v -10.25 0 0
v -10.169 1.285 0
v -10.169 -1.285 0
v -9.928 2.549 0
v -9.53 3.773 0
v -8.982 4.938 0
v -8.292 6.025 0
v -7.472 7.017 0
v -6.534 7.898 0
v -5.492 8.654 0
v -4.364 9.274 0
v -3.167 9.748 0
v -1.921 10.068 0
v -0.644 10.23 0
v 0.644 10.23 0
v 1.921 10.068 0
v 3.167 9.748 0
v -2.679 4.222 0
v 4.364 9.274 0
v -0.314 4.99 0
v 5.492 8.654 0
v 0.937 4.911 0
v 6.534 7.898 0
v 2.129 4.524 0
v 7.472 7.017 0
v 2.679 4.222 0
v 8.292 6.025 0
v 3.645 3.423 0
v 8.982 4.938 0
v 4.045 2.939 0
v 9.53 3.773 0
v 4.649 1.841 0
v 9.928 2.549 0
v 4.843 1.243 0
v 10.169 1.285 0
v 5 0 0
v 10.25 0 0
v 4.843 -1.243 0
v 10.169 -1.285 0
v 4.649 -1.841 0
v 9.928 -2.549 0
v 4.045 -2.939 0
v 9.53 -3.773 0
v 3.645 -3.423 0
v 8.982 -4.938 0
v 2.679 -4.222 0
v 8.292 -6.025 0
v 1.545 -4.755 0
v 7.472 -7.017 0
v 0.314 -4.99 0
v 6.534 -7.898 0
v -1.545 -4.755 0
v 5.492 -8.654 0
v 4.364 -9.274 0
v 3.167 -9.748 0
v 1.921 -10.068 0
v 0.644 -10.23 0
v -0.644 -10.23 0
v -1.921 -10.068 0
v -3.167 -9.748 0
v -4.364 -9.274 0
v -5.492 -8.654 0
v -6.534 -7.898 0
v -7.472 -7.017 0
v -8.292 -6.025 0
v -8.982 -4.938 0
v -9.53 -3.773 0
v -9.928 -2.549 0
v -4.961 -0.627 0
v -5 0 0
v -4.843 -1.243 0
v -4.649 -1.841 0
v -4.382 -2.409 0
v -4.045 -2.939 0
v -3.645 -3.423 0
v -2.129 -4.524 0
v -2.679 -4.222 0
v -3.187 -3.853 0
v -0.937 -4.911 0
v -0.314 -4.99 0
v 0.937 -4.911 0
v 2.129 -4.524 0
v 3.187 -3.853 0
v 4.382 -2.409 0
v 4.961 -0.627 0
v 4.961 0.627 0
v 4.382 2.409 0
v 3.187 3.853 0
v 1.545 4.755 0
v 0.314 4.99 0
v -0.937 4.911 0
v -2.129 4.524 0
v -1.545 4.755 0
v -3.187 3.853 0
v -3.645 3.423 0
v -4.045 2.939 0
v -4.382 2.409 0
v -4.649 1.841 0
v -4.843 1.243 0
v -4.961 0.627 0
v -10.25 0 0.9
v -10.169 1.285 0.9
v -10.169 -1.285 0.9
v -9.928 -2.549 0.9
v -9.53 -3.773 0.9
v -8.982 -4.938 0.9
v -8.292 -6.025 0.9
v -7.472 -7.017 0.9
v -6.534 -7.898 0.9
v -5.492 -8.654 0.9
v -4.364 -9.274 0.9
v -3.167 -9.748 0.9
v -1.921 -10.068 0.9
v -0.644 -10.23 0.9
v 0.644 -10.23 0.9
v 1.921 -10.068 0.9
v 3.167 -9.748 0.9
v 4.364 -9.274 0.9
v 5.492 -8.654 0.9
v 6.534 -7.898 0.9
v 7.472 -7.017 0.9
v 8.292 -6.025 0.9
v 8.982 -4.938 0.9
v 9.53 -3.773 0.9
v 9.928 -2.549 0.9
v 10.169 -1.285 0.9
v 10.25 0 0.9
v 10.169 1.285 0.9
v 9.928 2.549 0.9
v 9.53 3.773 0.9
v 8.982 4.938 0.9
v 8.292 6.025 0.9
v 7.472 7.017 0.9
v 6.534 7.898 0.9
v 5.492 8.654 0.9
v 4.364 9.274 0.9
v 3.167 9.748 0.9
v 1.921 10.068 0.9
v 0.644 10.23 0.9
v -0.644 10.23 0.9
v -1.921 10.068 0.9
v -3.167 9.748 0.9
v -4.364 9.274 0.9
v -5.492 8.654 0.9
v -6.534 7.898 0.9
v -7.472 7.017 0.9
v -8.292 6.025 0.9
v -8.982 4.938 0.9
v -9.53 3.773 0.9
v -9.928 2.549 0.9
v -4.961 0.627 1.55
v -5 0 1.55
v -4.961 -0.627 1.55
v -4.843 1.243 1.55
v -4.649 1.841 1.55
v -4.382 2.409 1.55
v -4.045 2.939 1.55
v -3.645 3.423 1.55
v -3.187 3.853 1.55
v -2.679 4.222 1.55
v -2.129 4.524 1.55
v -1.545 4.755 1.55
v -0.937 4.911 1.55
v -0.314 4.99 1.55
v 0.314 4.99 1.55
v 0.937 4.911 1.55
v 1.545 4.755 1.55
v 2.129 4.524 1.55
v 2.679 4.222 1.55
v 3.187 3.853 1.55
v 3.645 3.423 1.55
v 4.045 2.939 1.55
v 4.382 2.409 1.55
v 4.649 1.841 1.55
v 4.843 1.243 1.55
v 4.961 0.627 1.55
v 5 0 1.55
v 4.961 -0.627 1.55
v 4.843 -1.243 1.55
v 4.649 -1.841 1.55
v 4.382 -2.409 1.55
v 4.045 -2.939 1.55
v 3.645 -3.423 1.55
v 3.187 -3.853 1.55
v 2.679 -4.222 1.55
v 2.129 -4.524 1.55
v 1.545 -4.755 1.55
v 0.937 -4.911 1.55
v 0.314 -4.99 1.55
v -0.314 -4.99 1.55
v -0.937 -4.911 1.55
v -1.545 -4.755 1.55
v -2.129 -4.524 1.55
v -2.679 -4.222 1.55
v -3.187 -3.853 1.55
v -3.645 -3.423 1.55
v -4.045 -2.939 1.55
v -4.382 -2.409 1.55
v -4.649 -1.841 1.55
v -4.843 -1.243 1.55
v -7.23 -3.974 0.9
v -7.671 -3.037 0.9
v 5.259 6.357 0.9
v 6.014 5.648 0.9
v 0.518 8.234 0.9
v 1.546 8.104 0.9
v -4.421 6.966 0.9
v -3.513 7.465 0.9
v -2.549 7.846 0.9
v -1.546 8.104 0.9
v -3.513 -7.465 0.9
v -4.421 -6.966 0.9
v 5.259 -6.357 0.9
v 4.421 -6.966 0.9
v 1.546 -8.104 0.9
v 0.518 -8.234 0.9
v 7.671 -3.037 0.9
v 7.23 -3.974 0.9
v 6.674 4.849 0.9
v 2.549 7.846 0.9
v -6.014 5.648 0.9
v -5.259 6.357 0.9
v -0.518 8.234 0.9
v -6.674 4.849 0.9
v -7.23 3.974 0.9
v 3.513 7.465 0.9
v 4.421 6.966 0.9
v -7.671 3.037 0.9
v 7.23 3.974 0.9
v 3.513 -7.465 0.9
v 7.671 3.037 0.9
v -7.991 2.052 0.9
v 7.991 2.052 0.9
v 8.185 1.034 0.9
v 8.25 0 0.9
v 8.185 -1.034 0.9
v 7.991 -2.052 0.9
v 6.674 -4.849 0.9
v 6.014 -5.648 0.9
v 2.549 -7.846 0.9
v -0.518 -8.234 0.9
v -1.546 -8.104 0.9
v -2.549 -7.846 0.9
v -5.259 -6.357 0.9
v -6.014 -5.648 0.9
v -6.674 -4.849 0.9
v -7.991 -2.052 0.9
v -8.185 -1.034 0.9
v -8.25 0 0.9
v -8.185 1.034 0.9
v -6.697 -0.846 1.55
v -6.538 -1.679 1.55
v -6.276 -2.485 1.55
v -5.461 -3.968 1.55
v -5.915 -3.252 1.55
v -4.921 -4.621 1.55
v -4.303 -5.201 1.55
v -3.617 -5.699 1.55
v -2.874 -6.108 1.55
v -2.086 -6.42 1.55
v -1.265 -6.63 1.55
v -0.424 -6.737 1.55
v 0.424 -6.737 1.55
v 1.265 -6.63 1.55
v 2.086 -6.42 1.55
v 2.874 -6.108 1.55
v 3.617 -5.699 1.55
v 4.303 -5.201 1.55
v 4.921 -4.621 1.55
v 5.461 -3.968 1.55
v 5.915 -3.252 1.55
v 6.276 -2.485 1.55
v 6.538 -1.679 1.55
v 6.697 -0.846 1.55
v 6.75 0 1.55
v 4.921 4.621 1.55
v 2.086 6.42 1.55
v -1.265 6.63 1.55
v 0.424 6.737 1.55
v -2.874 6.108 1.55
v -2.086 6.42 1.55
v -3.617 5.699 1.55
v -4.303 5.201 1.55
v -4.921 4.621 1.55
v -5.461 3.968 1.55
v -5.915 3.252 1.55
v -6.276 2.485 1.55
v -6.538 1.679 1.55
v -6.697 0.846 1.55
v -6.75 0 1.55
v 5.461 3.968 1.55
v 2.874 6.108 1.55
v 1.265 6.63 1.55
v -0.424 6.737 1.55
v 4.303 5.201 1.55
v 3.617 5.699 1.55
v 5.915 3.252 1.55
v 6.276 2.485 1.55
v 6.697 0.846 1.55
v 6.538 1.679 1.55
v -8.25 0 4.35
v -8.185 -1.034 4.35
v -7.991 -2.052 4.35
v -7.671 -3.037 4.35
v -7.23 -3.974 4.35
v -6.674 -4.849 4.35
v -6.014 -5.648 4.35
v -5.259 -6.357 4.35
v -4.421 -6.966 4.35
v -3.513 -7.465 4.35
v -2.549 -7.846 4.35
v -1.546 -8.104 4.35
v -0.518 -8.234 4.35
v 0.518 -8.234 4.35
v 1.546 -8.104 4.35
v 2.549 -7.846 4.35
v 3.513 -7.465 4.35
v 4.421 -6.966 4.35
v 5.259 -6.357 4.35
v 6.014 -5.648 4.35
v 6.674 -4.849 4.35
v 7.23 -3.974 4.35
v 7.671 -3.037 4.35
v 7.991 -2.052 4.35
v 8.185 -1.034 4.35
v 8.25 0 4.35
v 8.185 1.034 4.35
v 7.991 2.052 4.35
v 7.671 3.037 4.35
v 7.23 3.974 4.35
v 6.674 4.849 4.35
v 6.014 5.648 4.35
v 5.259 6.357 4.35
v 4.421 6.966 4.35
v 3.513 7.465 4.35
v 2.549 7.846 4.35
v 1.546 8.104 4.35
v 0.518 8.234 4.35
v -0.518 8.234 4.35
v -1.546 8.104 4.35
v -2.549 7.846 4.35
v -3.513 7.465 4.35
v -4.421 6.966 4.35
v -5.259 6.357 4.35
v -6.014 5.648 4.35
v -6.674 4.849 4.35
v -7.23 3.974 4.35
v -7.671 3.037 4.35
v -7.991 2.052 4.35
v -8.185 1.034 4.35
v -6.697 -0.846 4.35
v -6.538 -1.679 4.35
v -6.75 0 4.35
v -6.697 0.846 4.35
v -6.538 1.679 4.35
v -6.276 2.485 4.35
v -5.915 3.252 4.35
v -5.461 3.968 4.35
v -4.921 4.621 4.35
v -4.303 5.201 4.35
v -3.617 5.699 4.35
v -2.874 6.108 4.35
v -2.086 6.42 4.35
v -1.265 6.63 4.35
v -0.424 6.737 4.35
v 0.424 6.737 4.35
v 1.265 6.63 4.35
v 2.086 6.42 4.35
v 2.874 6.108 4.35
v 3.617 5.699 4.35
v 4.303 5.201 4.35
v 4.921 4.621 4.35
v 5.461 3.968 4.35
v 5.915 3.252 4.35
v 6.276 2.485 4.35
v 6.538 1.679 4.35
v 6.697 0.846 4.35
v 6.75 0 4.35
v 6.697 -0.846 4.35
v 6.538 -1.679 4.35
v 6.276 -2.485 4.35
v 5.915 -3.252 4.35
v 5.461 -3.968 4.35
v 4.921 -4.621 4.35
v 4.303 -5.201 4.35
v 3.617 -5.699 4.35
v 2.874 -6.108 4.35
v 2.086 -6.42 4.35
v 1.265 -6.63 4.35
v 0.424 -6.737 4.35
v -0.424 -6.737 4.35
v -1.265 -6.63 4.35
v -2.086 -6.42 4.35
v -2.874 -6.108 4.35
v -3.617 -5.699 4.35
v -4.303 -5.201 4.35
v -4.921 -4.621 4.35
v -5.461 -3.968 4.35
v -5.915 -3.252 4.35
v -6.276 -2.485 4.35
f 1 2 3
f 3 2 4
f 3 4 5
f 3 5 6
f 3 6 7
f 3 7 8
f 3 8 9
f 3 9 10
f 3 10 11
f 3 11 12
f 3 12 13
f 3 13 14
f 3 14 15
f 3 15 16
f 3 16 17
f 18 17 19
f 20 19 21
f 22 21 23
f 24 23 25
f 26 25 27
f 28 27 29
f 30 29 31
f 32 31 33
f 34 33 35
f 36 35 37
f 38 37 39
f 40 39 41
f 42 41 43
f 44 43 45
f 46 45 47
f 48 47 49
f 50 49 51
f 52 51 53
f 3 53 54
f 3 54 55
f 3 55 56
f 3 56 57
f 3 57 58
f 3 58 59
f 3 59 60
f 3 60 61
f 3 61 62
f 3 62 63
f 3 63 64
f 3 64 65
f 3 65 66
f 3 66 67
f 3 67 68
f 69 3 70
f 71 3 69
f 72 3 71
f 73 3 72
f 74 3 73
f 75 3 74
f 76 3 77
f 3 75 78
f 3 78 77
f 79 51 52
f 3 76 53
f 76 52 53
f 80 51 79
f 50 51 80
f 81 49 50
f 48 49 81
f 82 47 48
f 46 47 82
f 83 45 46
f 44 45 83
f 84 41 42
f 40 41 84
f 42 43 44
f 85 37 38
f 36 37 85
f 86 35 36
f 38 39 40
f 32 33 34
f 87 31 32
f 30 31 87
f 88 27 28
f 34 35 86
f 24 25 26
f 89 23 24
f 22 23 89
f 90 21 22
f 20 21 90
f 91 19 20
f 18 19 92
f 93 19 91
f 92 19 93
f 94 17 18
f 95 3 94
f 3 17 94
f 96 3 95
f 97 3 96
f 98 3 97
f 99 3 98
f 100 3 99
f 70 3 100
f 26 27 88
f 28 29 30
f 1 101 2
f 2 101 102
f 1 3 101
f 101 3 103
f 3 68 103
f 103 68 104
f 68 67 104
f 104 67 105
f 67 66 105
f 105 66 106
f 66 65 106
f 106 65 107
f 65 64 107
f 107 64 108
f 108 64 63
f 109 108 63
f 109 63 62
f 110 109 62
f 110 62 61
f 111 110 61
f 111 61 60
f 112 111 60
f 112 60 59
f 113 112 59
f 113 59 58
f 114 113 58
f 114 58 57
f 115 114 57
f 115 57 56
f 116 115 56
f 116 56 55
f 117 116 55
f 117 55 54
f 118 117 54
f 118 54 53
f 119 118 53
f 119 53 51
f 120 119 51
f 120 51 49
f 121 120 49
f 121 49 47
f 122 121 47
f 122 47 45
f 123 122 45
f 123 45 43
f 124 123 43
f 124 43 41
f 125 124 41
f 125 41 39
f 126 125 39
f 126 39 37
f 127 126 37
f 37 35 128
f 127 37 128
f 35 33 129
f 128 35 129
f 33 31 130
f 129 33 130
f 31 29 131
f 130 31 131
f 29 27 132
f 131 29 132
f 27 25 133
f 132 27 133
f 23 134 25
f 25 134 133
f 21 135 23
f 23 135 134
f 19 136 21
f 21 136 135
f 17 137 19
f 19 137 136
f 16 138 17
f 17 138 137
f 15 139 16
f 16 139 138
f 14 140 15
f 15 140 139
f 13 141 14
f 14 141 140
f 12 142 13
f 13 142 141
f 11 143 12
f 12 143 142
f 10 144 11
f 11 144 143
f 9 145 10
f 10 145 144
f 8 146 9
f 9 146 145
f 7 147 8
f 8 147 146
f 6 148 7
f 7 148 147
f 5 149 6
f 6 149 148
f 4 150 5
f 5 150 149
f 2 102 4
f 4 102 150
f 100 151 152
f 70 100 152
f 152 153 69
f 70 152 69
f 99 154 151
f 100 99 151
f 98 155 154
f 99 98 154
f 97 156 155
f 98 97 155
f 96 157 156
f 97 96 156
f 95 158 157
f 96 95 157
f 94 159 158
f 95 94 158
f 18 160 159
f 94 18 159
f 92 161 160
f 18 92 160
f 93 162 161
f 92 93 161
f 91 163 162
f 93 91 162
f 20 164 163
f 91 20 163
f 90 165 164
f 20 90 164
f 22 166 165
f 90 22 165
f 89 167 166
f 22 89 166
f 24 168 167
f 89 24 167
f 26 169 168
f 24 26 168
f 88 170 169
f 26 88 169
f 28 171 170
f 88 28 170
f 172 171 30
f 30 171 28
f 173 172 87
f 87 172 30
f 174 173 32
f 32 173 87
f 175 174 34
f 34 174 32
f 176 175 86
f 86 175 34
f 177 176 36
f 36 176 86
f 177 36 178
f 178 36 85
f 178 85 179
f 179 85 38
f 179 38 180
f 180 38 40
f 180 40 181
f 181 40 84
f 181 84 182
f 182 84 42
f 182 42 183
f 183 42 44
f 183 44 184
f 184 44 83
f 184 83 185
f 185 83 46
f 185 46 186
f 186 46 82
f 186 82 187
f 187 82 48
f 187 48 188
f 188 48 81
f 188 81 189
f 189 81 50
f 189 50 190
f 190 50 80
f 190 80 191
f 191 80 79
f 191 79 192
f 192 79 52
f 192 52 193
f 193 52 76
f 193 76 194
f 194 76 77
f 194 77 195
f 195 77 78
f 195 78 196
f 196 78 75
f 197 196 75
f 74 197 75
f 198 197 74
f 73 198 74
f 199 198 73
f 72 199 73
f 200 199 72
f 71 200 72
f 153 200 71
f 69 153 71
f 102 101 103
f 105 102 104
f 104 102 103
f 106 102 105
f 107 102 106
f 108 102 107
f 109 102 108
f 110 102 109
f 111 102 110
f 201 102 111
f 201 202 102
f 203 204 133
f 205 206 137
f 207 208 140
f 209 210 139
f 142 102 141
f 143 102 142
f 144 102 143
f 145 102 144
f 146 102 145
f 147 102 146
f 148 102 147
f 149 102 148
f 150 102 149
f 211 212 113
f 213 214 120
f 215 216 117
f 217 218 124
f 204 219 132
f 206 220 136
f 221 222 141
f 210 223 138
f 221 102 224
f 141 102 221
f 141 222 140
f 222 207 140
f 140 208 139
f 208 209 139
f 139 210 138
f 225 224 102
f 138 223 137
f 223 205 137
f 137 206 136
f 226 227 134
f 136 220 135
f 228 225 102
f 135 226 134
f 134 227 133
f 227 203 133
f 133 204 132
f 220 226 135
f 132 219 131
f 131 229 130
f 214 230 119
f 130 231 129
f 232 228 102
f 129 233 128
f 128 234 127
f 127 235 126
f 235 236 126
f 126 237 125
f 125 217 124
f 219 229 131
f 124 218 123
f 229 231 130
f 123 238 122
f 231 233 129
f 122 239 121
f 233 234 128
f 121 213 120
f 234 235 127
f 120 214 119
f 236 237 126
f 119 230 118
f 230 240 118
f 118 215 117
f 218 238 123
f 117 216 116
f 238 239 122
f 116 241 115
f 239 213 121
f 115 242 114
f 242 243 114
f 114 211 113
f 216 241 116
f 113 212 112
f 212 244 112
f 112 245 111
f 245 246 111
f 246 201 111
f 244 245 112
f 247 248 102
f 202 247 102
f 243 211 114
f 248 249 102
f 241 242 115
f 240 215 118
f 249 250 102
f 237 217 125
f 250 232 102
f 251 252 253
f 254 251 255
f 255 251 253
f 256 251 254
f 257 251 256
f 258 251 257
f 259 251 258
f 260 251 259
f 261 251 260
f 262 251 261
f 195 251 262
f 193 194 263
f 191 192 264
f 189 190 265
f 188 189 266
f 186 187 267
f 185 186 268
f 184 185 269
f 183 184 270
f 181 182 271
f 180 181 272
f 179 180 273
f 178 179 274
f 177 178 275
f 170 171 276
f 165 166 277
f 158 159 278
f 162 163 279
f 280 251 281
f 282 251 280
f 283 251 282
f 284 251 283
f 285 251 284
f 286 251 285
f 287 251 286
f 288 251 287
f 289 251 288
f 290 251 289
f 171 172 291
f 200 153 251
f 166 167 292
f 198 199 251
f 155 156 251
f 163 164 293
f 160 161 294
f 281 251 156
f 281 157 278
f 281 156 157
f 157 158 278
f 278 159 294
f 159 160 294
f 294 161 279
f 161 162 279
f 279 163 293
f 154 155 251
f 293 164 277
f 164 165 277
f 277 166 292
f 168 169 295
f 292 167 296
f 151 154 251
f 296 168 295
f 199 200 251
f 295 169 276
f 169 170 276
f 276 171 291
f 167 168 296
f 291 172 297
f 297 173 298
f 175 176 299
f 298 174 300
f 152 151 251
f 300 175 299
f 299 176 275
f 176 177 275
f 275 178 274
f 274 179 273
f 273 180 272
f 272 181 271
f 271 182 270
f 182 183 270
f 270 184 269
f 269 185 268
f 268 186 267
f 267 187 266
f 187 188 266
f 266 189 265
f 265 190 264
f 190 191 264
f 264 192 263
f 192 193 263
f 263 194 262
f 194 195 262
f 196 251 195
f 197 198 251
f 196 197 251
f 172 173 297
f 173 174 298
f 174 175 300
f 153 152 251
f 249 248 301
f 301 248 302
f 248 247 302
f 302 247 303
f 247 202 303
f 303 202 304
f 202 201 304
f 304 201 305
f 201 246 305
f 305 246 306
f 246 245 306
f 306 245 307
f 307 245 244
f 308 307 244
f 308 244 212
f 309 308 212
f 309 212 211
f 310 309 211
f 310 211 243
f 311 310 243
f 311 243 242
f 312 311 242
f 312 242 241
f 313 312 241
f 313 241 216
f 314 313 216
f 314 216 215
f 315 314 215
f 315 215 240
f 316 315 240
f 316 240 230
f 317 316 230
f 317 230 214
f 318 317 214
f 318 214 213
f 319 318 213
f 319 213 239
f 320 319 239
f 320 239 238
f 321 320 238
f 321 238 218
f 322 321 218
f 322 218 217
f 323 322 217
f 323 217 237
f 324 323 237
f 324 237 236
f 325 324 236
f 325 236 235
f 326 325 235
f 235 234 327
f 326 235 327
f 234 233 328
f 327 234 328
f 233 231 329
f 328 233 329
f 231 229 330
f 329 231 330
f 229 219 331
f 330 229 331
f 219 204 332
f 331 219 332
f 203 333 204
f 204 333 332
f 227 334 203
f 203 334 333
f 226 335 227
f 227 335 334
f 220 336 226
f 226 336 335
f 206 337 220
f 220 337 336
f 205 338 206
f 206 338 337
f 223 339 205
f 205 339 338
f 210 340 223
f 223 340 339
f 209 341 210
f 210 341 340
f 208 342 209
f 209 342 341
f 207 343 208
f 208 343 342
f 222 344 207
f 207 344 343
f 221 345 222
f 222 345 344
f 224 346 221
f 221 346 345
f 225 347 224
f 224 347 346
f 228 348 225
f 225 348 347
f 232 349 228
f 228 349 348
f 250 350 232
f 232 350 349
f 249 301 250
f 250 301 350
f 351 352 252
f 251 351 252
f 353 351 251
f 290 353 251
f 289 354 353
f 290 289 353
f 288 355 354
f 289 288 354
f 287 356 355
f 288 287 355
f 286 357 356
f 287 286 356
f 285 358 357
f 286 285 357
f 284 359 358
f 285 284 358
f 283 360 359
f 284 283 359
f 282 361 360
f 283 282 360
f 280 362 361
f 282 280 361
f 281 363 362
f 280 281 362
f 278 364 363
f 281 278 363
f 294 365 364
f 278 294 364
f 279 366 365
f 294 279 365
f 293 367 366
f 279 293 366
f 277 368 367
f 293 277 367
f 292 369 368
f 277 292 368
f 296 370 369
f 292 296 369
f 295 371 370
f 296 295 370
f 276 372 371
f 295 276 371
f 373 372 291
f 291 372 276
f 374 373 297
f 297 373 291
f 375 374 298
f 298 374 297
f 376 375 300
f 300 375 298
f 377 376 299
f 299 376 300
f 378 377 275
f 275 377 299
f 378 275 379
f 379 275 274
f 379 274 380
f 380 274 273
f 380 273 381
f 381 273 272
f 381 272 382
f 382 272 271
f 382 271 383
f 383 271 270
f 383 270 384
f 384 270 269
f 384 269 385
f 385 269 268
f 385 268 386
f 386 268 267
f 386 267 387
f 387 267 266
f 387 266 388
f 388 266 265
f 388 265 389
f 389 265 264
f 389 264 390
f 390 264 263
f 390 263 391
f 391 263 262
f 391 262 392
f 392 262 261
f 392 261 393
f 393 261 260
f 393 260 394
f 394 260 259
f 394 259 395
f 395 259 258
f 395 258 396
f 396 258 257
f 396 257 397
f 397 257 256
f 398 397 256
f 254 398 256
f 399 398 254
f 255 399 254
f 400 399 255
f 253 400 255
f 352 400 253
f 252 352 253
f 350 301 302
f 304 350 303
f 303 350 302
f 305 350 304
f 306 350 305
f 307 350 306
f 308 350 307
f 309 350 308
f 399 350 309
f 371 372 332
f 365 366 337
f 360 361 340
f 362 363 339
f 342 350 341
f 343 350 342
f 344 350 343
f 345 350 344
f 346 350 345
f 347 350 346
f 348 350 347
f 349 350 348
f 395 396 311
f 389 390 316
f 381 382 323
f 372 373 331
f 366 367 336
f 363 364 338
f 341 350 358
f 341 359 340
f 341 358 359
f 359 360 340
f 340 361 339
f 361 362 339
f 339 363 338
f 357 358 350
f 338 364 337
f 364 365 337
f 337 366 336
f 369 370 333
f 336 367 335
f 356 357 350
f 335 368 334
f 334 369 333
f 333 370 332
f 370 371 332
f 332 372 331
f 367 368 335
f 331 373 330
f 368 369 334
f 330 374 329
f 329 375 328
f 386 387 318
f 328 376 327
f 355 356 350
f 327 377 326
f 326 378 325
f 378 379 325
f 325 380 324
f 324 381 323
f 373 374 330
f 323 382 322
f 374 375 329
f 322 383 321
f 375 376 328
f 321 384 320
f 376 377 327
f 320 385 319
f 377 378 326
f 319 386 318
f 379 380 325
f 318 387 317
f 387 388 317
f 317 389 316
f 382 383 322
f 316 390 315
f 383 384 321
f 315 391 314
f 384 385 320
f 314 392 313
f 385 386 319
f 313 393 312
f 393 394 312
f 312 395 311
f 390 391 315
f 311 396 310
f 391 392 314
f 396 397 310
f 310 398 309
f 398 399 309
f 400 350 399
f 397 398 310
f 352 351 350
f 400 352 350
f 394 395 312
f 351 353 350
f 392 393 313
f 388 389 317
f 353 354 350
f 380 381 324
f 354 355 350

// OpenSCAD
//
// Parametric belt guide for 624, 623 bearings and their ilk.
// 

layer_height = 0.3;
hotend_width = 0.5;

wall= hotend_width*3;
clearence= hotend_width/2; 

// for 624 bearings:
bearing_d = 13;
bearing_h = 5;
bearing_inside_d = 4;

// for 623 bearings:
//bearing_d = 10;
//bearing_h = 4;
//bearing_inside_d = 3; // hole diameter of the bearing

guide_outer_d = 16.5;
guide_outer_h = 8.7; // total height wanted for the assembled belt guide

module belt_guide_base() {
 cylinder(r=guide_outer_d/2, h=guide_outer_h/2, $fn=50);
 // outer flange
 cylinder(r=guide_outer_d/2+(hotend_width*4), h=3*layer_height, $fn=50);
}

module belt_guide_holes(){
 // hole for the bearing:
 #translate([0,0,guide_outer_h/2 - bearing_h/2 - layer_height]) cylinder(r=bearing_d/2+clearence, h=bearing_h, $fn=50);
 // hole for the rod through:
 translate([0,0,-1]) cylinder(r=bearing_d/2-wall, h=10, $fn=50);
}

// Final part
module belt_guide(){
 difference(){
  belt_guide_base();
  belt_guide_holes();
 }
}

belt_guide();
